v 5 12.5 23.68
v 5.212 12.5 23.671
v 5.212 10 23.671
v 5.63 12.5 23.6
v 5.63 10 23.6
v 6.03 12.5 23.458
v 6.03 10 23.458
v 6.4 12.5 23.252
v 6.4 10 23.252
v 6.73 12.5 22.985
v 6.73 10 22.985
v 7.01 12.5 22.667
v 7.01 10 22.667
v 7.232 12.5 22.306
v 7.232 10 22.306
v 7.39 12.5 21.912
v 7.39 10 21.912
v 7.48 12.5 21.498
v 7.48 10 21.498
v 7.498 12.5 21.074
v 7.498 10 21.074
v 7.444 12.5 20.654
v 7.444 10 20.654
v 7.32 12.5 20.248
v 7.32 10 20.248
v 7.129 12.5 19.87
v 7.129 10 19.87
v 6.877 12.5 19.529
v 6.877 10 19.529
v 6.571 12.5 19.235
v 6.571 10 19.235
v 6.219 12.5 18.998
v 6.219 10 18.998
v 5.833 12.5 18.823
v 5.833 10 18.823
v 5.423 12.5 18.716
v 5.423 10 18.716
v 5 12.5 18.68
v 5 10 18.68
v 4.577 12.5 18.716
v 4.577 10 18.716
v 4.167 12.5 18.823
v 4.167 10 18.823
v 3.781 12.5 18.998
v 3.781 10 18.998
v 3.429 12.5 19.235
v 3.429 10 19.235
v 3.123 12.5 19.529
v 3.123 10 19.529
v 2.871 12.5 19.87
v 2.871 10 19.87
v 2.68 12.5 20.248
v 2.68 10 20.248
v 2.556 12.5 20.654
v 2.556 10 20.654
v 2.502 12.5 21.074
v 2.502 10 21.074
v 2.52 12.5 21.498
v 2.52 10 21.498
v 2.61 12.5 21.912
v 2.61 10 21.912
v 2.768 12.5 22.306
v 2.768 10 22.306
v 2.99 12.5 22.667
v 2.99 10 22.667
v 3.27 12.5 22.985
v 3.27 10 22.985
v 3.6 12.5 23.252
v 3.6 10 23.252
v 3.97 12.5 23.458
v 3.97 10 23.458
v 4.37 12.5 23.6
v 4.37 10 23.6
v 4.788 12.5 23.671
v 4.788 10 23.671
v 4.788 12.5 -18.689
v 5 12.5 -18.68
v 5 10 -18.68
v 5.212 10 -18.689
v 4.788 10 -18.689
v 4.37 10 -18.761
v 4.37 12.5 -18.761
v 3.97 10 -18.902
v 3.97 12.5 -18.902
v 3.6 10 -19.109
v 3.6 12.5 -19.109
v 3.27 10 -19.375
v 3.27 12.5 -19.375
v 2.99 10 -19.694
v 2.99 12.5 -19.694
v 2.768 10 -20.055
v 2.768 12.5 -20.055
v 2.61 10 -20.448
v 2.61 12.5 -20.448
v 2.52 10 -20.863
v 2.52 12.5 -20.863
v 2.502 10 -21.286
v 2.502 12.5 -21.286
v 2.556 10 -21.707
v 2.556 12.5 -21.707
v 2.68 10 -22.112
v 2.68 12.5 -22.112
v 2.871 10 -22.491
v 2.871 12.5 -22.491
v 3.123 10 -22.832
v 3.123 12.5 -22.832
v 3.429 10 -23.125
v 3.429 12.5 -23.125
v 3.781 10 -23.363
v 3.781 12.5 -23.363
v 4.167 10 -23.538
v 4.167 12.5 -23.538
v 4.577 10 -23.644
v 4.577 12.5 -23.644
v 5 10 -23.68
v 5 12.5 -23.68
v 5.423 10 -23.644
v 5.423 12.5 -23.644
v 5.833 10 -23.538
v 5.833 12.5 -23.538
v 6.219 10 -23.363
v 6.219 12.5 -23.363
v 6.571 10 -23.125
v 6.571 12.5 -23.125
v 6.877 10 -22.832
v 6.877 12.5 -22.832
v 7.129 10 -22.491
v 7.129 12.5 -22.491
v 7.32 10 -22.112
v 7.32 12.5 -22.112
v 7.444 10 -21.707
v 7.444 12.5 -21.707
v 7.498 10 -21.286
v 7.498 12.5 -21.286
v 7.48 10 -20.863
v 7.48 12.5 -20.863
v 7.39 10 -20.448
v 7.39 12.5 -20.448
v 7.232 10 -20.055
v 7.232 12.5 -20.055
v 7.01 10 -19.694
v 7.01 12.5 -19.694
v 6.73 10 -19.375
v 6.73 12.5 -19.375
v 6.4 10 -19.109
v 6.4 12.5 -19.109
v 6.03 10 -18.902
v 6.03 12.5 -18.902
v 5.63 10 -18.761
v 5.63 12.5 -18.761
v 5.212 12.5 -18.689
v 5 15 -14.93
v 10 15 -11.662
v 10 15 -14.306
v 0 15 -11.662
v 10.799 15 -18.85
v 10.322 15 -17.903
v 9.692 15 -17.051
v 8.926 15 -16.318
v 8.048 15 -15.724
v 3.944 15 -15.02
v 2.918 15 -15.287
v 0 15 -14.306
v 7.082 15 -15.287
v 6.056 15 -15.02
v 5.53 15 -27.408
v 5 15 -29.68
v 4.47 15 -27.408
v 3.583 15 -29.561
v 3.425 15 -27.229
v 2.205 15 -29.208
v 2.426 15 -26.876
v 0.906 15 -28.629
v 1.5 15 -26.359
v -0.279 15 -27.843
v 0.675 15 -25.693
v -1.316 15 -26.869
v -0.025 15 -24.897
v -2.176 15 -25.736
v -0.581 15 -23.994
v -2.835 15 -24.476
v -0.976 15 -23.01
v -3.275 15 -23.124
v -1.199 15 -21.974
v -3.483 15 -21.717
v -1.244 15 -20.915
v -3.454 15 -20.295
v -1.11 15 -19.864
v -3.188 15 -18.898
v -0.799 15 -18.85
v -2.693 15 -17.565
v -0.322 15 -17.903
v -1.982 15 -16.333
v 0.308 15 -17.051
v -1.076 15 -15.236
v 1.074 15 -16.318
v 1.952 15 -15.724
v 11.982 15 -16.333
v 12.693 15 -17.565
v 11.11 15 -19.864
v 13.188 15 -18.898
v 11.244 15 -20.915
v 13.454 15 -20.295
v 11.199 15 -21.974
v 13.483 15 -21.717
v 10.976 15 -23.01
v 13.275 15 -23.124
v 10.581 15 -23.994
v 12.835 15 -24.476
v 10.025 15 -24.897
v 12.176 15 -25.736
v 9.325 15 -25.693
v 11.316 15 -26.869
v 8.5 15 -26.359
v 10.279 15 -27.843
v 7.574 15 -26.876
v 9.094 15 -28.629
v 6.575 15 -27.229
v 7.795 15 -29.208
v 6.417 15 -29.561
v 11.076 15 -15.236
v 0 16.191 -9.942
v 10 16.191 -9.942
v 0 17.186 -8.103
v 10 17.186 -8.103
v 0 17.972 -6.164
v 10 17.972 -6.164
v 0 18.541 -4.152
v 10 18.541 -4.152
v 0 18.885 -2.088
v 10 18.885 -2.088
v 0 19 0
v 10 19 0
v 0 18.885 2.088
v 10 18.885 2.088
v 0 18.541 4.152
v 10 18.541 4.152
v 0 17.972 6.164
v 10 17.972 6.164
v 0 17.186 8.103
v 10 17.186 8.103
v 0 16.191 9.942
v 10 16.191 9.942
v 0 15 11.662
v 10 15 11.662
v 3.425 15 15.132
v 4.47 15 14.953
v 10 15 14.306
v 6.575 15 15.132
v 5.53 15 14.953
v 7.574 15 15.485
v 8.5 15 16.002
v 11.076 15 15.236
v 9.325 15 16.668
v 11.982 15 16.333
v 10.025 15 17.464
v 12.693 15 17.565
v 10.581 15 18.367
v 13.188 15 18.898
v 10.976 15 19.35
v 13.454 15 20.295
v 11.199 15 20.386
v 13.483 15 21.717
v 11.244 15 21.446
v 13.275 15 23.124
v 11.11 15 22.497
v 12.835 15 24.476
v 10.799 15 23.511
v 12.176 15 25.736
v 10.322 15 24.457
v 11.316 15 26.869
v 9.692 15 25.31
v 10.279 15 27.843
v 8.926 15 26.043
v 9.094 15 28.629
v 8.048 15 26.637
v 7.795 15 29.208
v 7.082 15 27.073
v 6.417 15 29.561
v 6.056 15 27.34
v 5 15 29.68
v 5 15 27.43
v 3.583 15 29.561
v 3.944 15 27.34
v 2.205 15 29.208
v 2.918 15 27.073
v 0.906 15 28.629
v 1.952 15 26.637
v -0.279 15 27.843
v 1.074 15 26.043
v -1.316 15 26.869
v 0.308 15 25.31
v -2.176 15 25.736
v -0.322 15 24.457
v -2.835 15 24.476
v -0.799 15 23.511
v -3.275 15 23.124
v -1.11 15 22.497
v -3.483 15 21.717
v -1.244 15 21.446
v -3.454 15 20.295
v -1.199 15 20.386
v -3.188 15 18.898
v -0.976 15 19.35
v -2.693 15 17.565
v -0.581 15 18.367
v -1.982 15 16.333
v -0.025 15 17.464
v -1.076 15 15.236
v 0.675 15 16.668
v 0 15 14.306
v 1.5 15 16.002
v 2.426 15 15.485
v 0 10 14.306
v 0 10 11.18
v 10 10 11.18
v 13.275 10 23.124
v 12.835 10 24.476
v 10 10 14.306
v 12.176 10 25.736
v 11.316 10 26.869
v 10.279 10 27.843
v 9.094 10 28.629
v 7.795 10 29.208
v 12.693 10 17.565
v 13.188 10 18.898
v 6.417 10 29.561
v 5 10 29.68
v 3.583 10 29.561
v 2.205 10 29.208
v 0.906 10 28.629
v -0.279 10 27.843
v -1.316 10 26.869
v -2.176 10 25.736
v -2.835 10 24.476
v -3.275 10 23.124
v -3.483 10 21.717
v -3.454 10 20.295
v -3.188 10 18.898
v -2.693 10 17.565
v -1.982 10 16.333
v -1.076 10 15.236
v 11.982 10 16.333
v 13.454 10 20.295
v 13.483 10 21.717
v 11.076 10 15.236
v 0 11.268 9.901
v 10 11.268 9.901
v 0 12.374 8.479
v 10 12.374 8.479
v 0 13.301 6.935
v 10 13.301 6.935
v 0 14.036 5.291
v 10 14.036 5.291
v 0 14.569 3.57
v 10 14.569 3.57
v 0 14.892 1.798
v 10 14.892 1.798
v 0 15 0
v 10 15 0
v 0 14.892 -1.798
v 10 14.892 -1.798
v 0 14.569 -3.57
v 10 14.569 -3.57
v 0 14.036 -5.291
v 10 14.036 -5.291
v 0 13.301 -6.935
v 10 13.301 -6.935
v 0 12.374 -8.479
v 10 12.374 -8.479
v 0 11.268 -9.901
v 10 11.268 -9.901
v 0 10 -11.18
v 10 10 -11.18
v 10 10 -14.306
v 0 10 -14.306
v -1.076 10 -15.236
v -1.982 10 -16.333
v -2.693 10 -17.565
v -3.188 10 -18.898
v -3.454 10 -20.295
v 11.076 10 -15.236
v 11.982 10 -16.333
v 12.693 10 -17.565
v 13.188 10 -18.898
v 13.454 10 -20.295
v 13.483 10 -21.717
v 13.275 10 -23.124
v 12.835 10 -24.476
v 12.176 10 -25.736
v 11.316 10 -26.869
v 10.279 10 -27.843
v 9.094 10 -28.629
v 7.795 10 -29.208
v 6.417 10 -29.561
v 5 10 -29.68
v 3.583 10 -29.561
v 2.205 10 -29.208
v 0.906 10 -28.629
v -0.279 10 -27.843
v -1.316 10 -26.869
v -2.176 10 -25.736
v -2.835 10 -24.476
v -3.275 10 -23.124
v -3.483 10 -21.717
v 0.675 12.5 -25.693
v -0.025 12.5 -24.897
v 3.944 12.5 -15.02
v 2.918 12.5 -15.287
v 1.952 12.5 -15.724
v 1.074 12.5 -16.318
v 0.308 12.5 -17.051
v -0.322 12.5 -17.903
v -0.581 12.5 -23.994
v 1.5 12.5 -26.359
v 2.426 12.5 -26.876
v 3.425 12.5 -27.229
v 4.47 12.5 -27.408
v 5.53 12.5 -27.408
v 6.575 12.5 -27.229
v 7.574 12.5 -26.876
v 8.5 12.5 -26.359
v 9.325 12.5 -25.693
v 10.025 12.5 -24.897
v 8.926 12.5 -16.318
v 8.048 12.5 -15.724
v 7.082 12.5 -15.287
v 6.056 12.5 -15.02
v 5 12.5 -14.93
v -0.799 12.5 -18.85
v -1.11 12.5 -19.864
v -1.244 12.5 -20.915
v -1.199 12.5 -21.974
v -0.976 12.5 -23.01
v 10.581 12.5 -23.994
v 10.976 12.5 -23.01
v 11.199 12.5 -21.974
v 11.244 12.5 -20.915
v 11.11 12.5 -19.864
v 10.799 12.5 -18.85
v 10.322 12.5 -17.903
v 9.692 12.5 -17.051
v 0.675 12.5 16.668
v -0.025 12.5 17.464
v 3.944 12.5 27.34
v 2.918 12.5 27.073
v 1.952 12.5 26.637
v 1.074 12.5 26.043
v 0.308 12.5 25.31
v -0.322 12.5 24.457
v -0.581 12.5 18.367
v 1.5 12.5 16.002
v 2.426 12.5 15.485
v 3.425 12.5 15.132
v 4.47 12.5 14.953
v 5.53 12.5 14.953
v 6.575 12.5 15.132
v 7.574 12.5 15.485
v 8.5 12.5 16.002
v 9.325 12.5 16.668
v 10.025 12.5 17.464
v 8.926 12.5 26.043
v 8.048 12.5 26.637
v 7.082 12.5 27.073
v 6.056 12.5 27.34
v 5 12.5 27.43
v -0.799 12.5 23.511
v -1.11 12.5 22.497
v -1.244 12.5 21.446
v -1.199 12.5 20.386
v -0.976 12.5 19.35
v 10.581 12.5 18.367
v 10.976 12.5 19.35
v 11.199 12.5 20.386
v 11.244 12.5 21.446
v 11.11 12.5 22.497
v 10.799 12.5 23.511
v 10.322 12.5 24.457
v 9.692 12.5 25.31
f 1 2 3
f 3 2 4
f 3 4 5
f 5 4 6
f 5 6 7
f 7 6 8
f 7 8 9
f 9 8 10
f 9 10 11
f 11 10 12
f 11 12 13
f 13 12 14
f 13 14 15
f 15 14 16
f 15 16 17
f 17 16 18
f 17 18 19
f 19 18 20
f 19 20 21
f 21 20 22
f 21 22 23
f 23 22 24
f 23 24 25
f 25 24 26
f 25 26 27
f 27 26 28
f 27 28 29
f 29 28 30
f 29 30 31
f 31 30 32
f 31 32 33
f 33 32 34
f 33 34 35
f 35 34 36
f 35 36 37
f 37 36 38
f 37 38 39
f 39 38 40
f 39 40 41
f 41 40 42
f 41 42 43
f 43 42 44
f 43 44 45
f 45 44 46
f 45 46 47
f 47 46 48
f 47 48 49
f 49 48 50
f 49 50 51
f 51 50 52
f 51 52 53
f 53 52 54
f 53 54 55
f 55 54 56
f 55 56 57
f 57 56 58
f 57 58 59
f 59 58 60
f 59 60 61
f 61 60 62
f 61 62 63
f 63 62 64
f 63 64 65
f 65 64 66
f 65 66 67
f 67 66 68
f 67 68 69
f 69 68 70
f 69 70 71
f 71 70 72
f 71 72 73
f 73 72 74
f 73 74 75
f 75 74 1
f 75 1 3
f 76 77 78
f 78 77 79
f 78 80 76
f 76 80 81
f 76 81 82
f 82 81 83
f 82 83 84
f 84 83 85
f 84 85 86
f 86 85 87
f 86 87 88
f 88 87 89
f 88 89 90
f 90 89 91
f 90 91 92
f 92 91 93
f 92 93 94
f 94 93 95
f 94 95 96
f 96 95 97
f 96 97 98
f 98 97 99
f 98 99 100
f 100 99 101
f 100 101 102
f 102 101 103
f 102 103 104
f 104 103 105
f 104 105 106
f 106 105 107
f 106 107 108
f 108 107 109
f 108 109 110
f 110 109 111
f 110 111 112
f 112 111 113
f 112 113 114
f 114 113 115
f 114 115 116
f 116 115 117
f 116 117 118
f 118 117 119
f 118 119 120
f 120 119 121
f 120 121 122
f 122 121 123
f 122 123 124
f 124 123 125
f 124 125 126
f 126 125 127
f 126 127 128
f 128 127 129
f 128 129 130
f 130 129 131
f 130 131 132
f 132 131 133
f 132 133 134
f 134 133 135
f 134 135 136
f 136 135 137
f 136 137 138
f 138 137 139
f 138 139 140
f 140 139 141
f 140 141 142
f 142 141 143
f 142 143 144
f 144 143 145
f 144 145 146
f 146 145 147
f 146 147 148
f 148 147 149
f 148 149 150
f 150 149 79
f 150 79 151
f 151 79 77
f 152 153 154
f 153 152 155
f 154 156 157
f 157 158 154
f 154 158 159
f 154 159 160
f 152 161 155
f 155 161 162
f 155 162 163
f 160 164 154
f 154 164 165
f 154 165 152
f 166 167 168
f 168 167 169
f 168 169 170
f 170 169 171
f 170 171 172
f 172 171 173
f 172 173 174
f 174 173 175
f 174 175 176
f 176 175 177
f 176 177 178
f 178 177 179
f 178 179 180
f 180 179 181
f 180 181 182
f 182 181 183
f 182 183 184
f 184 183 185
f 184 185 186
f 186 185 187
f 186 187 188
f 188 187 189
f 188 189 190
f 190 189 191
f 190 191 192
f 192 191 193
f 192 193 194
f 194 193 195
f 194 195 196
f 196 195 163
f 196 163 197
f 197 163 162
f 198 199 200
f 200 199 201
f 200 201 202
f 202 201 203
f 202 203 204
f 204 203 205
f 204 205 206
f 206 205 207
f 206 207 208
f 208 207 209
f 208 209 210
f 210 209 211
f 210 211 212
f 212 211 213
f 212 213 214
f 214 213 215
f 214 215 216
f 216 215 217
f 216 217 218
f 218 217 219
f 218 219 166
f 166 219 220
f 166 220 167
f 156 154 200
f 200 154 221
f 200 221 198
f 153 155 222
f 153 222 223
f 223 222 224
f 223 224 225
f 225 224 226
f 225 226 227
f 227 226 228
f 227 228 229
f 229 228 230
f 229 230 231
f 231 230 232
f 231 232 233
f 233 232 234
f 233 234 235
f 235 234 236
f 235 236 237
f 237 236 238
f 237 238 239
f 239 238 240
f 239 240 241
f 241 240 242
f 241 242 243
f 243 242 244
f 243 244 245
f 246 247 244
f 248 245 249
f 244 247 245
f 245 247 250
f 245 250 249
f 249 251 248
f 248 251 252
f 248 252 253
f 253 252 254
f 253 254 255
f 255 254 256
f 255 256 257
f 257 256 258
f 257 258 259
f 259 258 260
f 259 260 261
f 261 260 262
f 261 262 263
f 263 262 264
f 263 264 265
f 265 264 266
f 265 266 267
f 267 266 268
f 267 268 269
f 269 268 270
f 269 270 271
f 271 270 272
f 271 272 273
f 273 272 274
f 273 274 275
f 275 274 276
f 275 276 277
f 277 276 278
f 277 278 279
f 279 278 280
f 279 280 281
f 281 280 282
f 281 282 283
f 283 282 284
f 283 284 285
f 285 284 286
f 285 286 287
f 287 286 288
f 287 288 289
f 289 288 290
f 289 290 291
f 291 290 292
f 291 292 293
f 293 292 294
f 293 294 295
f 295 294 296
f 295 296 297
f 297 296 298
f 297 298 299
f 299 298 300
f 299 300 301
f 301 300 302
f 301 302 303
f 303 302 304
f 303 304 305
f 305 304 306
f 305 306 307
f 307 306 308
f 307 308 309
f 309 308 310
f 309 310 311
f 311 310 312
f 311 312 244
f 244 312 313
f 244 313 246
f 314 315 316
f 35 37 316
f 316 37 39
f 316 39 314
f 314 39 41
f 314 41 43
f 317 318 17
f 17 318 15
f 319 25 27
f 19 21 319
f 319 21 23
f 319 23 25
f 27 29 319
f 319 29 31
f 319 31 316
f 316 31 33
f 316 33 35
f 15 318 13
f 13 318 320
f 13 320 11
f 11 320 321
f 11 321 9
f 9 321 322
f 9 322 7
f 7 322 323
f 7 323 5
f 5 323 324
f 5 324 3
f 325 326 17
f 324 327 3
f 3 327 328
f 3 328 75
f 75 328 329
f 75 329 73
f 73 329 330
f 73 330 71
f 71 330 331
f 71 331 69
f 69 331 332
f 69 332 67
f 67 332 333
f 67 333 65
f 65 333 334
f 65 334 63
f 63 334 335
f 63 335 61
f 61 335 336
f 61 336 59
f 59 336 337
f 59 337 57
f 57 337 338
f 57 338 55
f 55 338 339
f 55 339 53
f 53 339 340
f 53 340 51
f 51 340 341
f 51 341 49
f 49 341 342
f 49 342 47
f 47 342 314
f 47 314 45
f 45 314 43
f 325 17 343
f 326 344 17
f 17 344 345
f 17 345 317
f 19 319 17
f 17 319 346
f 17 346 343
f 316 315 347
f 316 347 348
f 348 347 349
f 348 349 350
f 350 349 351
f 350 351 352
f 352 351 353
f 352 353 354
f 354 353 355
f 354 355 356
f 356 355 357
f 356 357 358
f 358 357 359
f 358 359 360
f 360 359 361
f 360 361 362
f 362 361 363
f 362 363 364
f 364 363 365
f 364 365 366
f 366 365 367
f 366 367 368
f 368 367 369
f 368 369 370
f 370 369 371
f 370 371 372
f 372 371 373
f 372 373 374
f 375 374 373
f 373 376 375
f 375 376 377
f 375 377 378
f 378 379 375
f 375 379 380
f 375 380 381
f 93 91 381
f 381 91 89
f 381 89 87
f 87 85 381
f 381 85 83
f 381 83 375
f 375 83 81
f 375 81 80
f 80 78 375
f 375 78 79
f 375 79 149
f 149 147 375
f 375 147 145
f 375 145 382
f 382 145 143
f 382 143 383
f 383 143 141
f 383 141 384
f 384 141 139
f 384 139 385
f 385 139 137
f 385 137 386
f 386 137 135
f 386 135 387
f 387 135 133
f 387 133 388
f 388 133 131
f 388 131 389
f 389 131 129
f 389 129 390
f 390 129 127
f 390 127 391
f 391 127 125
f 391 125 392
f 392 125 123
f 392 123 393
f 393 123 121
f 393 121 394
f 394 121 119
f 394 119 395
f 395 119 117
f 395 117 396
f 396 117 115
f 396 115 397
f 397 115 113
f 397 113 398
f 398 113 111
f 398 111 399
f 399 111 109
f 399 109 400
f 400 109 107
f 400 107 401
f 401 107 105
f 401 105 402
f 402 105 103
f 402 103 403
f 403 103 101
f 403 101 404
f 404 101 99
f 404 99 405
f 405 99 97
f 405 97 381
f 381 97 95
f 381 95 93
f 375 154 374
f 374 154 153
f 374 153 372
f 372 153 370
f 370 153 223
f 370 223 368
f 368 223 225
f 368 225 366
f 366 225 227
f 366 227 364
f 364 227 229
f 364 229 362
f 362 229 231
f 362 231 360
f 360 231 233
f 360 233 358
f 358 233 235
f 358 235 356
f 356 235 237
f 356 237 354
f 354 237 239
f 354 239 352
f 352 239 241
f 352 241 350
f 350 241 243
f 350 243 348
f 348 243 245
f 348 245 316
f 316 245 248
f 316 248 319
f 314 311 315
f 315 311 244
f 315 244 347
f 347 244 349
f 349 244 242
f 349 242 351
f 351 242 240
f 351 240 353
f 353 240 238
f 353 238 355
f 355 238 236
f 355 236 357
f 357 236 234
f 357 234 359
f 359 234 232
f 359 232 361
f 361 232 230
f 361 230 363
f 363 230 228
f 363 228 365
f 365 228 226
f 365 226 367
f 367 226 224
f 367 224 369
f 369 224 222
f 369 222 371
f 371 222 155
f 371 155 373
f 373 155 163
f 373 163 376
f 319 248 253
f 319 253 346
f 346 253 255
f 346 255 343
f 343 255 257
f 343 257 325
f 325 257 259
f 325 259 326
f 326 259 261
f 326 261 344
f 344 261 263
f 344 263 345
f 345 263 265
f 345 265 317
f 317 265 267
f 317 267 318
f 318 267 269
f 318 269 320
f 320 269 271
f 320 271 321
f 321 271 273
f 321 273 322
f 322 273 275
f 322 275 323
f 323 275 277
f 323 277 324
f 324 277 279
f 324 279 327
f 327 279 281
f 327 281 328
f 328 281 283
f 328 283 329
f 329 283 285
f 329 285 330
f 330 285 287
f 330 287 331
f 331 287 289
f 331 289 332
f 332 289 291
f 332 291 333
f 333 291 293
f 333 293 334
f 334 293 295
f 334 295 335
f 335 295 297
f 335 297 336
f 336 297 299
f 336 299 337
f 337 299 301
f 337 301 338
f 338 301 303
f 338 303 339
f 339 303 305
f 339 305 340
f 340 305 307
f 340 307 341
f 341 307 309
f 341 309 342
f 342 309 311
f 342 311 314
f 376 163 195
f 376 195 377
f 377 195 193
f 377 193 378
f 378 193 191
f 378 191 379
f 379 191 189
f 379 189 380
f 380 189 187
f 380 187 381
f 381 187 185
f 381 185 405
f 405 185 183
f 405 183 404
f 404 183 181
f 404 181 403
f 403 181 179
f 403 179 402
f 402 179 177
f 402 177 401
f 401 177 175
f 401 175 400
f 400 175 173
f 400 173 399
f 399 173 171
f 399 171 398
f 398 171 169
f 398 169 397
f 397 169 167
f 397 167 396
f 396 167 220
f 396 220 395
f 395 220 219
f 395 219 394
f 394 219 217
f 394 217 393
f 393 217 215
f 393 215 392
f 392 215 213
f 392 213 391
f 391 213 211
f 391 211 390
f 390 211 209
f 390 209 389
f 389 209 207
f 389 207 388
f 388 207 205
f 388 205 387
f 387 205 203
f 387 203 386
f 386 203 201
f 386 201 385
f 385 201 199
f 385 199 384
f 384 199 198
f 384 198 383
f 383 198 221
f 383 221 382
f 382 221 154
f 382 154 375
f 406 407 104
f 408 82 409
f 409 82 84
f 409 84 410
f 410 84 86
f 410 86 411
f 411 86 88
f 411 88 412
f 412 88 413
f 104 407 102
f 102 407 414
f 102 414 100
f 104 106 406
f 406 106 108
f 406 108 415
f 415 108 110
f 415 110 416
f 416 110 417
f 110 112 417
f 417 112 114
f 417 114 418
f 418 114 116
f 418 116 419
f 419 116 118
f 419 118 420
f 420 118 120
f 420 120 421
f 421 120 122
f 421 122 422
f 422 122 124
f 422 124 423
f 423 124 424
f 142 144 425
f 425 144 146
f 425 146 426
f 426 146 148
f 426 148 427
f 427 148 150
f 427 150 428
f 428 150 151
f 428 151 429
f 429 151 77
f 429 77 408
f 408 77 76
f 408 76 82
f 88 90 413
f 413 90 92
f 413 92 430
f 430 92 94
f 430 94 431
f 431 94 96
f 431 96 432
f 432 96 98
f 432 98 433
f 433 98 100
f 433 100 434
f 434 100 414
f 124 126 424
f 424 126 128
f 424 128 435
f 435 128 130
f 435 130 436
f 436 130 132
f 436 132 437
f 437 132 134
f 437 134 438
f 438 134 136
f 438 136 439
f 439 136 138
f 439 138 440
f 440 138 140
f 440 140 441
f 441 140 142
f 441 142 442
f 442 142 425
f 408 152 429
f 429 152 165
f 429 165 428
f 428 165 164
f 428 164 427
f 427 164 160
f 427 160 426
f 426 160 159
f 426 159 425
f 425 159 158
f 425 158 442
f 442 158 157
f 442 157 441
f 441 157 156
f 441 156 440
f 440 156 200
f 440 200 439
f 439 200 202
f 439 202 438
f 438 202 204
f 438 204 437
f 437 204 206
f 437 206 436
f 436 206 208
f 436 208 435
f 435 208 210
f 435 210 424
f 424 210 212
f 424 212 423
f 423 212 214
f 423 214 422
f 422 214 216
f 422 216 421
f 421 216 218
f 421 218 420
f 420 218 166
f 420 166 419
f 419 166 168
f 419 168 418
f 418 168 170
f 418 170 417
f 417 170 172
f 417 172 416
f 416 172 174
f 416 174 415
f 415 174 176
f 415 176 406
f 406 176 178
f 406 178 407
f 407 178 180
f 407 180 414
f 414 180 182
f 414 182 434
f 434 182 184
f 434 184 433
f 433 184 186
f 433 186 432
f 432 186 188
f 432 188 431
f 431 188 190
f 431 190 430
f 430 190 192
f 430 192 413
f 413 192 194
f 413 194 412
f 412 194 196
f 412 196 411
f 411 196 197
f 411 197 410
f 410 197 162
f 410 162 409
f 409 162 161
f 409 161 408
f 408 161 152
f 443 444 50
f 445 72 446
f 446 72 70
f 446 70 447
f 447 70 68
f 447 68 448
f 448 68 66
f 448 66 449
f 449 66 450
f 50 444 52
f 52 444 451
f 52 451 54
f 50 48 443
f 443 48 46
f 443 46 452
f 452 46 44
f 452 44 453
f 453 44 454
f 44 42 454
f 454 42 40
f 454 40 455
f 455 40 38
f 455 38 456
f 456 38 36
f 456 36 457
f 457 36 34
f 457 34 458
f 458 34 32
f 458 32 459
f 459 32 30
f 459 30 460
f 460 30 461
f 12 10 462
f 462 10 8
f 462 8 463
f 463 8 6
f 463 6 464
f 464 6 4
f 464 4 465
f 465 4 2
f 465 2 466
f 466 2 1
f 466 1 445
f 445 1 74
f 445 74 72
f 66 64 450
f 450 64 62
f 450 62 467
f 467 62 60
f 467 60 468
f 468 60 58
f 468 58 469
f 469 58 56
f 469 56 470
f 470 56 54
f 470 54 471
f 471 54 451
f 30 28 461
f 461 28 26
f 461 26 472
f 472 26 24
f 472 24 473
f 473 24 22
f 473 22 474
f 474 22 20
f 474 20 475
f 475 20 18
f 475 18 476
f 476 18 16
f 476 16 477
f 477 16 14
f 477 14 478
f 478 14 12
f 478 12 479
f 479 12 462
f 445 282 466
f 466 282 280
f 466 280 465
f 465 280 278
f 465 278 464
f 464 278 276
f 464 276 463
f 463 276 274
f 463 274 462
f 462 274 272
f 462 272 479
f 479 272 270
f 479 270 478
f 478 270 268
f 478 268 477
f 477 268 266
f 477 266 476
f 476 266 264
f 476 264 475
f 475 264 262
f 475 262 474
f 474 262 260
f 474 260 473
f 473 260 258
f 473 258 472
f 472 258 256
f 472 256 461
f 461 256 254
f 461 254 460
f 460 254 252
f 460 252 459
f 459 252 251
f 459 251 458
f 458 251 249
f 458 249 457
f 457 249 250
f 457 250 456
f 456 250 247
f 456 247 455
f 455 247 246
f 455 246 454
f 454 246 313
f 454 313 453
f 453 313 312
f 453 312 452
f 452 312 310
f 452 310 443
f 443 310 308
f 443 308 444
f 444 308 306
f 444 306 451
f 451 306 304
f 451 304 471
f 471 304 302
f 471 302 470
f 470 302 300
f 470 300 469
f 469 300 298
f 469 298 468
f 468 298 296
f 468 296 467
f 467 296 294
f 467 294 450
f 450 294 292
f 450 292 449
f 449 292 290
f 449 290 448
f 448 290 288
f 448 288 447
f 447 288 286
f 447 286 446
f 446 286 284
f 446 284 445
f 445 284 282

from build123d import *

# Parameters (mm, degrees)
BASE_DEPTH           = 10
ESQUISSE5_R          = 2.5
VIDE_ACCES_VIS_DEPTH = 30.434846638
BOSS_START           = -5
ESQUISSE6_R          = 8.5
ESQUISSE6_R_2        = 2.5
BOSS_VIS_DEPTH       = 5
ESQUISSE7_R          = 6.25
VIDE_ECROU_DEPTH     = 2.5


with BuildPart() as part:
    # Esquisse2 → BASE (new body)
    with BuildSketch(Plane(origin=(0, 0, 0), x_dir=(0, 0, -1), z_dir=(1, 0, 0))):
        with BuildLine():
            Line((-26.180339887, 10), (-16.717843024, 10))
            Line((-16.717843024, 10), (-14.361406616, 10))
            Line((-14.361406616, 10), (-11.180339887, 10))
            ThreePointArc((-11.180339887, 10), (0, 15), (11.180339887, 10))
            Line((11.180339887, 10), (14.361406616, 10))
            Line((14.361406616, 10), (20.155156542, 10))
            Line((20.155156542, 10), (21.180339887, 10))
            Line((21.180339887, 10), (26.180339887, 10))
            Line((26.180339887, 10), (26.180339887, 15))
            Line((26.180339887, 15), (11.66190379, 15))
            ThreePointArc((11.66190379, 15), (0, 19), (-11.66190379, 15))
            Line((-11.66190379, 15), (-26.180339887, 15))
            Line((-26.180339887, 15), (-26.180339887, 10))
        make_face()
    extrude(amount=BASE_DEPTH)

    # Esquisse5 → VIDE ACCES VIS (cut, through all)
    with BuildSketch(Plane.XZ.offset(-10)):
        with Locations(Location((5, 21.180339887, 0), (0, 0, 270))):
            Circle(ESQUISSE5_R)
        with Locations(Location((5, -21.180339887, 0), (0, 0, 270))):
            Circle(ESQUISSE5_R)
    extrude(amount=-VIDE_ACCES_VIS_DEPTH, mode=Mode.SUBTRACT)

    # Esquisse6 → BOSS VIS (add)
    # profile 1 of 2: a face of its own
    with BuildSketch(Plane(origin=(0, 15, 0), x_dir=(1, 0, 0), z_dir=(0, 1, 0)).offset(BOSS_START)):
        with Locations((5, -21.180339887)):
            Circle(ESQUISSE6_R)
        with Locations(Location((5, -21.180339887, 0), (0, 0, 90))):
            Circle(ESQUISSE6_R_2, mode=Mode.SUBTRACT)
    # profile 2 of 2: a face of its own
    with BuildSketch(Plane(origin=(0, 15, 0), x_dir=(1, 0, 0), z_dir=(0, 1, 0)).offset(BOSS_START)):
        with Locations((5, 21.180339887)):
            Circle(ESQUISSE6_R)
        with Locations(Location((5, 21.180339887, 0), (0, 0, 90))):
            Circle(ESQUISSE6_R_2, mode=Mode.SUBTRACT)
    extrude(amount=BOSS_VIS_DEPTH)

    # Esquisse7 → VIDE ECROU (cut)
    with BuildSketch(Plane(origin=(0, 15, 0), x_dir=(1, 0, 0), z_dir=(0, 1, 0))):
        with Locations(Location((5, 21.180339887, 0), (0, 0, 270))):
            Circle(ESQUISSE7_R)
        with Locations(Location((5, -21.180339887, 0), (0, 0, 270))):
            Circle(ESQUISSE7_R)
    extrude(amount=-VIDE_ECROU_DEPTH, mode=Mode.SUBTRACT)


solid = part.part
